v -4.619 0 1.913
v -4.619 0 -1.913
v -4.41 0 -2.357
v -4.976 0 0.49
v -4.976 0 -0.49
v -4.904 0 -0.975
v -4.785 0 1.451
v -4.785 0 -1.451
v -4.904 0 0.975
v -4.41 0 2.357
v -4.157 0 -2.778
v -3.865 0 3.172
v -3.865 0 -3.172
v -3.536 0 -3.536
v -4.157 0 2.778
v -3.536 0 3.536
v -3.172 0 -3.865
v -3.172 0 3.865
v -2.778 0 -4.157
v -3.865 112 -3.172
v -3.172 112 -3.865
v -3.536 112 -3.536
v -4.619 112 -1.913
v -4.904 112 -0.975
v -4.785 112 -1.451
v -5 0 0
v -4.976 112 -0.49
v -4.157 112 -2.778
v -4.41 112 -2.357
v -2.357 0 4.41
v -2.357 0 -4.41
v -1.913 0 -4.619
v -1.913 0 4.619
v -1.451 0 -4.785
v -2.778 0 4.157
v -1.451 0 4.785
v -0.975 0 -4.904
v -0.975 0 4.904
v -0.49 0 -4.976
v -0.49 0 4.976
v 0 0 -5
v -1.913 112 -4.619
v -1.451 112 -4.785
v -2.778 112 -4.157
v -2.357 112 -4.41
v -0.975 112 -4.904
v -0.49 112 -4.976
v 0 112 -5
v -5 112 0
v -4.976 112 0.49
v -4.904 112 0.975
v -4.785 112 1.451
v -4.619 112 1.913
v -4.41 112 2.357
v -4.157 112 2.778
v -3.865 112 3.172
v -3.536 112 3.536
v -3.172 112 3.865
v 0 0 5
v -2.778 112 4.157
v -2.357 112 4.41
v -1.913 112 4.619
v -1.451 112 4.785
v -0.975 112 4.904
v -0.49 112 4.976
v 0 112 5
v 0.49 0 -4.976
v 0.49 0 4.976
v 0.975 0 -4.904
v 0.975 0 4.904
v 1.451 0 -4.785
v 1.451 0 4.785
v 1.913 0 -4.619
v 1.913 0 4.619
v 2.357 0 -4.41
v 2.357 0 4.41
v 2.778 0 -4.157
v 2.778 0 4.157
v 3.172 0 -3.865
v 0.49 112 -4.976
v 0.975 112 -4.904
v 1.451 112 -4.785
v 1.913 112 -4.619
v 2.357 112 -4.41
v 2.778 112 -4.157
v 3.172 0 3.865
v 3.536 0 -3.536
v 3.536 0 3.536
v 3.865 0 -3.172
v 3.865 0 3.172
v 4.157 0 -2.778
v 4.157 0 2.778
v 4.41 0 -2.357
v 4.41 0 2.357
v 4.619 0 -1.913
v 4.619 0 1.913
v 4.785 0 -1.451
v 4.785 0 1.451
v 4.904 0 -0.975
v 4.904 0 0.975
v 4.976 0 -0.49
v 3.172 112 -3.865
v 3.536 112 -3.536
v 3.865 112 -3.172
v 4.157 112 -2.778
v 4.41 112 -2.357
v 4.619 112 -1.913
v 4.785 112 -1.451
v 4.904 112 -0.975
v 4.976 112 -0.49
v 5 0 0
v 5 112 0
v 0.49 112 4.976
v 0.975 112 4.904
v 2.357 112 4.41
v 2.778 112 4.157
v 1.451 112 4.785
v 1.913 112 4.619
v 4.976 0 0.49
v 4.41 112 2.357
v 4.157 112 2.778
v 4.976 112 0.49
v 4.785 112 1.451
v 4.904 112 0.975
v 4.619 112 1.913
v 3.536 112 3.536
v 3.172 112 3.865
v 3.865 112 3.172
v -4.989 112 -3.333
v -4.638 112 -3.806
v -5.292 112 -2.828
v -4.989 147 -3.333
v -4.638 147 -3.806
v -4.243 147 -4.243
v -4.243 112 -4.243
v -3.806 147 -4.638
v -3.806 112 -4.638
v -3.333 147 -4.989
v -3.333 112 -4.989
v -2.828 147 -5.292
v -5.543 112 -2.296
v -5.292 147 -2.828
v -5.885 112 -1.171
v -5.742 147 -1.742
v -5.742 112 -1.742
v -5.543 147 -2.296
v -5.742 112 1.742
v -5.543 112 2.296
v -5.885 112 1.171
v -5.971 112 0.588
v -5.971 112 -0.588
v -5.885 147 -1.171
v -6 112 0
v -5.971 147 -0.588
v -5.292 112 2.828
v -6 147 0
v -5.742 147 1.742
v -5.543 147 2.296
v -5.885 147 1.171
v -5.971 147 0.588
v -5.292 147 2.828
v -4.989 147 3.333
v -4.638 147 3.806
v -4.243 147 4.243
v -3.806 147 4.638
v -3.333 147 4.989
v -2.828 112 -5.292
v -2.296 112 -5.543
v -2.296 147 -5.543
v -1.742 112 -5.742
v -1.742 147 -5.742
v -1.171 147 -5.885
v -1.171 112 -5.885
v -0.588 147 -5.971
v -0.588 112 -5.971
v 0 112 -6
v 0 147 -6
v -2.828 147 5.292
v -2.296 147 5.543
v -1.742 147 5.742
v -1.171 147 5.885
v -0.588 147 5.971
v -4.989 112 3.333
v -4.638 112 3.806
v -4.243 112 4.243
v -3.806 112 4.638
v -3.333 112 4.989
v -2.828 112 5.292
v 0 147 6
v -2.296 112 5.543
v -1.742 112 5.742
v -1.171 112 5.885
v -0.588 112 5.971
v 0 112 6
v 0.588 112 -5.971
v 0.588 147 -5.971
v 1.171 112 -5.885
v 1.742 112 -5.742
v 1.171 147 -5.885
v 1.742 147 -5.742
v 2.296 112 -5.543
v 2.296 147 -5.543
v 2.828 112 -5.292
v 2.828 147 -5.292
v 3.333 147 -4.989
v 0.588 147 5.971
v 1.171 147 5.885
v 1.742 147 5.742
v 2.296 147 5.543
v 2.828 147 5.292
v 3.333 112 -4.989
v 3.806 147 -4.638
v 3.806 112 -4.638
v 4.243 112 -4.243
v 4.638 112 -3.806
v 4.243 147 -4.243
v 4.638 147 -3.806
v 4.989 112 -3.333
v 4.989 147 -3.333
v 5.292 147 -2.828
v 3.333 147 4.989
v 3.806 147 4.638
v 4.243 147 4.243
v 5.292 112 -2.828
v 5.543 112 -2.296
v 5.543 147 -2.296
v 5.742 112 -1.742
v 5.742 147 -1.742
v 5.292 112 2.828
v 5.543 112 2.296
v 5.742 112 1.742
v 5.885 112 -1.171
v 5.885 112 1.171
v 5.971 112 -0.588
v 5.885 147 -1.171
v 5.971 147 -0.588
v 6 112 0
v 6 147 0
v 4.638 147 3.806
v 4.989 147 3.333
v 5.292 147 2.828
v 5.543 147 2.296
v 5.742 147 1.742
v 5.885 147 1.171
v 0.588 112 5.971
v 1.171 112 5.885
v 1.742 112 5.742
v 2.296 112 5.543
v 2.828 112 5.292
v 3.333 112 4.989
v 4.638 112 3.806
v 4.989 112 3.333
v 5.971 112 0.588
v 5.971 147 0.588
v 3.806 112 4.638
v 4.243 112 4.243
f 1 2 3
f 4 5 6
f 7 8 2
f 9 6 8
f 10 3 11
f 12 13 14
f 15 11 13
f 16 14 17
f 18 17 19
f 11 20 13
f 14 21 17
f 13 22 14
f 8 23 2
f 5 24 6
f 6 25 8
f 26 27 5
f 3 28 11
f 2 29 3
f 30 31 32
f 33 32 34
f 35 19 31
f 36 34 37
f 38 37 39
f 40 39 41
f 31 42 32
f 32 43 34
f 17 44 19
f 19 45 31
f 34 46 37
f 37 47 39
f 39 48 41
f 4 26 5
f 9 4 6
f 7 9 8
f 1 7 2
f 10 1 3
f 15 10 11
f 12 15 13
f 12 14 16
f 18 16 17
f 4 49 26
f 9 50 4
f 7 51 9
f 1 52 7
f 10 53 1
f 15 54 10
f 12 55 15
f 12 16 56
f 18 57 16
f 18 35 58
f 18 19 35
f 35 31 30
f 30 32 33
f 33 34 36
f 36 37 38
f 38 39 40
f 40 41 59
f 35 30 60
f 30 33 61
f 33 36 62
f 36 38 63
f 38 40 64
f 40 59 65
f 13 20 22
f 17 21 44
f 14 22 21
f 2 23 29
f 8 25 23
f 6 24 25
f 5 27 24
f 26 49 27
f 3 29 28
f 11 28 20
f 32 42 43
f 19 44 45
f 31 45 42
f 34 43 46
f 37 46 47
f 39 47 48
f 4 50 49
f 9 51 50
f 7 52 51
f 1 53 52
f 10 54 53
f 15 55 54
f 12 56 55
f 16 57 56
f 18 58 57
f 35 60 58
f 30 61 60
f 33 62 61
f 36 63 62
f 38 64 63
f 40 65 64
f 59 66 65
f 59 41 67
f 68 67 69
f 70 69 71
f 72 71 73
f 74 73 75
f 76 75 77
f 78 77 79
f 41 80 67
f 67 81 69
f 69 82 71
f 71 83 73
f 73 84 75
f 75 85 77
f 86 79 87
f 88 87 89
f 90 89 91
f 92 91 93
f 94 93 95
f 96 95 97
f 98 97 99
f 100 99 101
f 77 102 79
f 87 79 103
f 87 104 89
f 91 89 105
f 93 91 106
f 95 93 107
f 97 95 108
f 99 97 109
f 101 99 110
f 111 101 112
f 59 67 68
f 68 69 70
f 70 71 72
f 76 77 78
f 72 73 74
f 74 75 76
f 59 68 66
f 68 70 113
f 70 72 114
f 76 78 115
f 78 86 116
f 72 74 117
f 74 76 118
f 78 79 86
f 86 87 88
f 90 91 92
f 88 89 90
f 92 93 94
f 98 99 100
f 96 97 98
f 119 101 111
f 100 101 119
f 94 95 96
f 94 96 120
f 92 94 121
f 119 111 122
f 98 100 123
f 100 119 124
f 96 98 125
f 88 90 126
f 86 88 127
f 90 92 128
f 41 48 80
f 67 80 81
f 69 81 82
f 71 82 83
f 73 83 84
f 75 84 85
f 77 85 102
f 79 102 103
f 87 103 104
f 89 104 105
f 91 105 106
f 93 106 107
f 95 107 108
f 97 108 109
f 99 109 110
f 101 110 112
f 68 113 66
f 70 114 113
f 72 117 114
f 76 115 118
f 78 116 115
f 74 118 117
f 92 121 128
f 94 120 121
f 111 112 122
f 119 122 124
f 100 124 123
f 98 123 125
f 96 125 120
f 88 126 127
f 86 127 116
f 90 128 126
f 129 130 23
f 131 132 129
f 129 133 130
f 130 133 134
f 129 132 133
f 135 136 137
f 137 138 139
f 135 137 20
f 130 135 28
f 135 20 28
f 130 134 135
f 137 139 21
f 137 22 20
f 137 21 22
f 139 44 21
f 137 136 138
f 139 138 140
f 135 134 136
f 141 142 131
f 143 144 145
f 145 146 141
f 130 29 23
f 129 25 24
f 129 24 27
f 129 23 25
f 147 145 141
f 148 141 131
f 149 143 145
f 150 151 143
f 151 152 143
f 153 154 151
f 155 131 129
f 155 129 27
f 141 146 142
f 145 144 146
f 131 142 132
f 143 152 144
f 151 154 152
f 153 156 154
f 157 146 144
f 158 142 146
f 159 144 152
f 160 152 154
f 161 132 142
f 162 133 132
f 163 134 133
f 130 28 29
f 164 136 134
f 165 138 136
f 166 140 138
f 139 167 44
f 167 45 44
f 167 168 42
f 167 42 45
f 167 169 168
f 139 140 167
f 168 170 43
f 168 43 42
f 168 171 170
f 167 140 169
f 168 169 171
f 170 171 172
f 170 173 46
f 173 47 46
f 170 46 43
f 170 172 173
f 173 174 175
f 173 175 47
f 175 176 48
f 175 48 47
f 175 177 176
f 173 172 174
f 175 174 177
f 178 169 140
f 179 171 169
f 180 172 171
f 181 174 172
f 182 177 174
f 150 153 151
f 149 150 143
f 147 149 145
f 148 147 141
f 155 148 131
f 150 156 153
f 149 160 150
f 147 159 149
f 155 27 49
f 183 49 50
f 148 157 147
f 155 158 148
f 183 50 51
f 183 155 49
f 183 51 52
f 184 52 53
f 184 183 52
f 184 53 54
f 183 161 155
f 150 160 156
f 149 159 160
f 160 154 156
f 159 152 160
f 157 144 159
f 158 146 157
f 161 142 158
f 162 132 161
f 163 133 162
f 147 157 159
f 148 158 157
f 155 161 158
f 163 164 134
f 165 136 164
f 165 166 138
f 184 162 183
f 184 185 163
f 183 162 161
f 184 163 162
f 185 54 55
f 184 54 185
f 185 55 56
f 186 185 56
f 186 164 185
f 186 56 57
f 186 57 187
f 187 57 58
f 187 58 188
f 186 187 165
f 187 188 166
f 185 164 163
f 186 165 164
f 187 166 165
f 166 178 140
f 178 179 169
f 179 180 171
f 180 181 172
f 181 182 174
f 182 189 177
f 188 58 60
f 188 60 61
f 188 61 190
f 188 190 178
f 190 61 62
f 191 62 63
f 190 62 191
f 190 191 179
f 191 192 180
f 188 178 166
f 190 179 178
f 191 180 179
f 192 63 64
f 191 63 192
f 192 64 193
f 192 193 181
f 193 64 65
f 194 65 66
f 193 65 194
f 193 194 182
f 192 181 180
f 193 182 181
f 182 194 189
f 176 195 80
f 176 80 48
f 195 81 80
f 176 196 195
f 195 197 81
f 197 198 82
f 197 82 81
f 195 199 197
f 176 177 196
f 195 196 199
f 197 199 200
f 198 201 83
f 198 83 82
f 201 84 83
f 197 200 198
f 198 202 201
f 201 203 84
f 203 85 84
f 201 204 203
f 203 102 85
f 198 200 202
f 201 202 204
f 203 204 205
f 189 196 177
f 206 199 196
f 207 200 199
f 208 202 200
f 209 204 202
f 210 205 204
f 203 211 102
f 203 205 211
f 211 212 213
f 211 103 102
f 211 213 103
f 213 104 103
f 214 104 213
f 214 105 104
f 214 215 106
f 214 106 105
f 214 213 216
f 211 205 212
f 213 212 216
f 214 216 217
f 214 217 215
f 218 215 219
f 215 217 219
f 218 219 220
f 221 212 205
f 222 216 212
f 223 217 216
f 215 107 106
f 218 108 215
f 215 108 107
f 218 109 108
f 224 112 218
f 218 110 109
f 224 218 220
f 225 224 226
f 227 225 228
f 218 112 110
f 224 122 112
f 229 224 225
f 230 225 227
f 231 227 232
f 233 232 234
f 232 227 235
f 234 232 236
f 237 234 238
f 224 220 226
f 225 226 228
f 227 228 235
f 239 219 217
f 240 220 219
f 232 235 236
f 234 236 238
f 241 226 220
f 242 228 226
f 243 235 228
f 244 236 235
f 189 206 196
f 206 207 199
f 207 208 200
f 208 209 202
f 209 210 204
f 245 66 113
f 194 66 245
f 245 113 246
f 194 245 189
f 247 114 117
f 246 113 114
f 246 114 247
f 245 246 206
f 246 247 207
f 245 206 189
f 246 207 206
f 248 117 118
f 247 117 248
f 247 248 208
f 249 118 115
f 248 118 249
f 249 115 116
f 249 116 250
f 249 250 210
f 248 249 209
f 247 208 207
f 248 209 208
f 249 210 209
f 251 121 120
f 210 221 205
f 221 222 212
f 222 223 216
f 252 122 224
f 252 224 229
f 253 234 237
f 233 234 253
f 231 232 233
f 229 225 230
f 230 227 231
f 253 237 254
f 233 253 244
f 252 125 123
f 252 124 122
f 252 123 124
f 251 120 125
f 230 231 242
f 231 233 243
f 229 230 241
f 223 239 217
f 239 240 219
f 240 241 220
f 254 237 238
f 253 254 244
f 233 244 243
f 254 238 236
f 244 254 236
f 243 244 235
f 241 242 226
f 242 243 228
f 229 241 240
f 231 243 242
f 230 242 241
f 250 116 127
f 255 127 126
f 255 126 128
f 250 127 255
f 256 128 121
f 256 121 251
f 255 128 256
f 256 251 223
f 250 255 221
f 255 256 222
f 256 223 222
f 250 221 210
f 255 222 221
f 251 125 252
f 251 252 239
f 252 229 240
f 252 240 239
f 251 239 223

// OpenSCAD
// BIC clear-lid marker
// Geometry follows the holder clearance profile. Its dimensions describe the pocket used in the source design. Physical tool dimensions and fit have yet to be measured.
// Units: mm
$fn = 64;
union() {
    translate([0, 0, 0]) rotate([-90, 0, 0])
        cylinder(h=112, r1=5, r2=5, $fn=64);
    translate([0, 112, 0]) rotate([-90, 0, 0])
        cylinder(h=35, r1=6, r2=6, $fn=64);
}
